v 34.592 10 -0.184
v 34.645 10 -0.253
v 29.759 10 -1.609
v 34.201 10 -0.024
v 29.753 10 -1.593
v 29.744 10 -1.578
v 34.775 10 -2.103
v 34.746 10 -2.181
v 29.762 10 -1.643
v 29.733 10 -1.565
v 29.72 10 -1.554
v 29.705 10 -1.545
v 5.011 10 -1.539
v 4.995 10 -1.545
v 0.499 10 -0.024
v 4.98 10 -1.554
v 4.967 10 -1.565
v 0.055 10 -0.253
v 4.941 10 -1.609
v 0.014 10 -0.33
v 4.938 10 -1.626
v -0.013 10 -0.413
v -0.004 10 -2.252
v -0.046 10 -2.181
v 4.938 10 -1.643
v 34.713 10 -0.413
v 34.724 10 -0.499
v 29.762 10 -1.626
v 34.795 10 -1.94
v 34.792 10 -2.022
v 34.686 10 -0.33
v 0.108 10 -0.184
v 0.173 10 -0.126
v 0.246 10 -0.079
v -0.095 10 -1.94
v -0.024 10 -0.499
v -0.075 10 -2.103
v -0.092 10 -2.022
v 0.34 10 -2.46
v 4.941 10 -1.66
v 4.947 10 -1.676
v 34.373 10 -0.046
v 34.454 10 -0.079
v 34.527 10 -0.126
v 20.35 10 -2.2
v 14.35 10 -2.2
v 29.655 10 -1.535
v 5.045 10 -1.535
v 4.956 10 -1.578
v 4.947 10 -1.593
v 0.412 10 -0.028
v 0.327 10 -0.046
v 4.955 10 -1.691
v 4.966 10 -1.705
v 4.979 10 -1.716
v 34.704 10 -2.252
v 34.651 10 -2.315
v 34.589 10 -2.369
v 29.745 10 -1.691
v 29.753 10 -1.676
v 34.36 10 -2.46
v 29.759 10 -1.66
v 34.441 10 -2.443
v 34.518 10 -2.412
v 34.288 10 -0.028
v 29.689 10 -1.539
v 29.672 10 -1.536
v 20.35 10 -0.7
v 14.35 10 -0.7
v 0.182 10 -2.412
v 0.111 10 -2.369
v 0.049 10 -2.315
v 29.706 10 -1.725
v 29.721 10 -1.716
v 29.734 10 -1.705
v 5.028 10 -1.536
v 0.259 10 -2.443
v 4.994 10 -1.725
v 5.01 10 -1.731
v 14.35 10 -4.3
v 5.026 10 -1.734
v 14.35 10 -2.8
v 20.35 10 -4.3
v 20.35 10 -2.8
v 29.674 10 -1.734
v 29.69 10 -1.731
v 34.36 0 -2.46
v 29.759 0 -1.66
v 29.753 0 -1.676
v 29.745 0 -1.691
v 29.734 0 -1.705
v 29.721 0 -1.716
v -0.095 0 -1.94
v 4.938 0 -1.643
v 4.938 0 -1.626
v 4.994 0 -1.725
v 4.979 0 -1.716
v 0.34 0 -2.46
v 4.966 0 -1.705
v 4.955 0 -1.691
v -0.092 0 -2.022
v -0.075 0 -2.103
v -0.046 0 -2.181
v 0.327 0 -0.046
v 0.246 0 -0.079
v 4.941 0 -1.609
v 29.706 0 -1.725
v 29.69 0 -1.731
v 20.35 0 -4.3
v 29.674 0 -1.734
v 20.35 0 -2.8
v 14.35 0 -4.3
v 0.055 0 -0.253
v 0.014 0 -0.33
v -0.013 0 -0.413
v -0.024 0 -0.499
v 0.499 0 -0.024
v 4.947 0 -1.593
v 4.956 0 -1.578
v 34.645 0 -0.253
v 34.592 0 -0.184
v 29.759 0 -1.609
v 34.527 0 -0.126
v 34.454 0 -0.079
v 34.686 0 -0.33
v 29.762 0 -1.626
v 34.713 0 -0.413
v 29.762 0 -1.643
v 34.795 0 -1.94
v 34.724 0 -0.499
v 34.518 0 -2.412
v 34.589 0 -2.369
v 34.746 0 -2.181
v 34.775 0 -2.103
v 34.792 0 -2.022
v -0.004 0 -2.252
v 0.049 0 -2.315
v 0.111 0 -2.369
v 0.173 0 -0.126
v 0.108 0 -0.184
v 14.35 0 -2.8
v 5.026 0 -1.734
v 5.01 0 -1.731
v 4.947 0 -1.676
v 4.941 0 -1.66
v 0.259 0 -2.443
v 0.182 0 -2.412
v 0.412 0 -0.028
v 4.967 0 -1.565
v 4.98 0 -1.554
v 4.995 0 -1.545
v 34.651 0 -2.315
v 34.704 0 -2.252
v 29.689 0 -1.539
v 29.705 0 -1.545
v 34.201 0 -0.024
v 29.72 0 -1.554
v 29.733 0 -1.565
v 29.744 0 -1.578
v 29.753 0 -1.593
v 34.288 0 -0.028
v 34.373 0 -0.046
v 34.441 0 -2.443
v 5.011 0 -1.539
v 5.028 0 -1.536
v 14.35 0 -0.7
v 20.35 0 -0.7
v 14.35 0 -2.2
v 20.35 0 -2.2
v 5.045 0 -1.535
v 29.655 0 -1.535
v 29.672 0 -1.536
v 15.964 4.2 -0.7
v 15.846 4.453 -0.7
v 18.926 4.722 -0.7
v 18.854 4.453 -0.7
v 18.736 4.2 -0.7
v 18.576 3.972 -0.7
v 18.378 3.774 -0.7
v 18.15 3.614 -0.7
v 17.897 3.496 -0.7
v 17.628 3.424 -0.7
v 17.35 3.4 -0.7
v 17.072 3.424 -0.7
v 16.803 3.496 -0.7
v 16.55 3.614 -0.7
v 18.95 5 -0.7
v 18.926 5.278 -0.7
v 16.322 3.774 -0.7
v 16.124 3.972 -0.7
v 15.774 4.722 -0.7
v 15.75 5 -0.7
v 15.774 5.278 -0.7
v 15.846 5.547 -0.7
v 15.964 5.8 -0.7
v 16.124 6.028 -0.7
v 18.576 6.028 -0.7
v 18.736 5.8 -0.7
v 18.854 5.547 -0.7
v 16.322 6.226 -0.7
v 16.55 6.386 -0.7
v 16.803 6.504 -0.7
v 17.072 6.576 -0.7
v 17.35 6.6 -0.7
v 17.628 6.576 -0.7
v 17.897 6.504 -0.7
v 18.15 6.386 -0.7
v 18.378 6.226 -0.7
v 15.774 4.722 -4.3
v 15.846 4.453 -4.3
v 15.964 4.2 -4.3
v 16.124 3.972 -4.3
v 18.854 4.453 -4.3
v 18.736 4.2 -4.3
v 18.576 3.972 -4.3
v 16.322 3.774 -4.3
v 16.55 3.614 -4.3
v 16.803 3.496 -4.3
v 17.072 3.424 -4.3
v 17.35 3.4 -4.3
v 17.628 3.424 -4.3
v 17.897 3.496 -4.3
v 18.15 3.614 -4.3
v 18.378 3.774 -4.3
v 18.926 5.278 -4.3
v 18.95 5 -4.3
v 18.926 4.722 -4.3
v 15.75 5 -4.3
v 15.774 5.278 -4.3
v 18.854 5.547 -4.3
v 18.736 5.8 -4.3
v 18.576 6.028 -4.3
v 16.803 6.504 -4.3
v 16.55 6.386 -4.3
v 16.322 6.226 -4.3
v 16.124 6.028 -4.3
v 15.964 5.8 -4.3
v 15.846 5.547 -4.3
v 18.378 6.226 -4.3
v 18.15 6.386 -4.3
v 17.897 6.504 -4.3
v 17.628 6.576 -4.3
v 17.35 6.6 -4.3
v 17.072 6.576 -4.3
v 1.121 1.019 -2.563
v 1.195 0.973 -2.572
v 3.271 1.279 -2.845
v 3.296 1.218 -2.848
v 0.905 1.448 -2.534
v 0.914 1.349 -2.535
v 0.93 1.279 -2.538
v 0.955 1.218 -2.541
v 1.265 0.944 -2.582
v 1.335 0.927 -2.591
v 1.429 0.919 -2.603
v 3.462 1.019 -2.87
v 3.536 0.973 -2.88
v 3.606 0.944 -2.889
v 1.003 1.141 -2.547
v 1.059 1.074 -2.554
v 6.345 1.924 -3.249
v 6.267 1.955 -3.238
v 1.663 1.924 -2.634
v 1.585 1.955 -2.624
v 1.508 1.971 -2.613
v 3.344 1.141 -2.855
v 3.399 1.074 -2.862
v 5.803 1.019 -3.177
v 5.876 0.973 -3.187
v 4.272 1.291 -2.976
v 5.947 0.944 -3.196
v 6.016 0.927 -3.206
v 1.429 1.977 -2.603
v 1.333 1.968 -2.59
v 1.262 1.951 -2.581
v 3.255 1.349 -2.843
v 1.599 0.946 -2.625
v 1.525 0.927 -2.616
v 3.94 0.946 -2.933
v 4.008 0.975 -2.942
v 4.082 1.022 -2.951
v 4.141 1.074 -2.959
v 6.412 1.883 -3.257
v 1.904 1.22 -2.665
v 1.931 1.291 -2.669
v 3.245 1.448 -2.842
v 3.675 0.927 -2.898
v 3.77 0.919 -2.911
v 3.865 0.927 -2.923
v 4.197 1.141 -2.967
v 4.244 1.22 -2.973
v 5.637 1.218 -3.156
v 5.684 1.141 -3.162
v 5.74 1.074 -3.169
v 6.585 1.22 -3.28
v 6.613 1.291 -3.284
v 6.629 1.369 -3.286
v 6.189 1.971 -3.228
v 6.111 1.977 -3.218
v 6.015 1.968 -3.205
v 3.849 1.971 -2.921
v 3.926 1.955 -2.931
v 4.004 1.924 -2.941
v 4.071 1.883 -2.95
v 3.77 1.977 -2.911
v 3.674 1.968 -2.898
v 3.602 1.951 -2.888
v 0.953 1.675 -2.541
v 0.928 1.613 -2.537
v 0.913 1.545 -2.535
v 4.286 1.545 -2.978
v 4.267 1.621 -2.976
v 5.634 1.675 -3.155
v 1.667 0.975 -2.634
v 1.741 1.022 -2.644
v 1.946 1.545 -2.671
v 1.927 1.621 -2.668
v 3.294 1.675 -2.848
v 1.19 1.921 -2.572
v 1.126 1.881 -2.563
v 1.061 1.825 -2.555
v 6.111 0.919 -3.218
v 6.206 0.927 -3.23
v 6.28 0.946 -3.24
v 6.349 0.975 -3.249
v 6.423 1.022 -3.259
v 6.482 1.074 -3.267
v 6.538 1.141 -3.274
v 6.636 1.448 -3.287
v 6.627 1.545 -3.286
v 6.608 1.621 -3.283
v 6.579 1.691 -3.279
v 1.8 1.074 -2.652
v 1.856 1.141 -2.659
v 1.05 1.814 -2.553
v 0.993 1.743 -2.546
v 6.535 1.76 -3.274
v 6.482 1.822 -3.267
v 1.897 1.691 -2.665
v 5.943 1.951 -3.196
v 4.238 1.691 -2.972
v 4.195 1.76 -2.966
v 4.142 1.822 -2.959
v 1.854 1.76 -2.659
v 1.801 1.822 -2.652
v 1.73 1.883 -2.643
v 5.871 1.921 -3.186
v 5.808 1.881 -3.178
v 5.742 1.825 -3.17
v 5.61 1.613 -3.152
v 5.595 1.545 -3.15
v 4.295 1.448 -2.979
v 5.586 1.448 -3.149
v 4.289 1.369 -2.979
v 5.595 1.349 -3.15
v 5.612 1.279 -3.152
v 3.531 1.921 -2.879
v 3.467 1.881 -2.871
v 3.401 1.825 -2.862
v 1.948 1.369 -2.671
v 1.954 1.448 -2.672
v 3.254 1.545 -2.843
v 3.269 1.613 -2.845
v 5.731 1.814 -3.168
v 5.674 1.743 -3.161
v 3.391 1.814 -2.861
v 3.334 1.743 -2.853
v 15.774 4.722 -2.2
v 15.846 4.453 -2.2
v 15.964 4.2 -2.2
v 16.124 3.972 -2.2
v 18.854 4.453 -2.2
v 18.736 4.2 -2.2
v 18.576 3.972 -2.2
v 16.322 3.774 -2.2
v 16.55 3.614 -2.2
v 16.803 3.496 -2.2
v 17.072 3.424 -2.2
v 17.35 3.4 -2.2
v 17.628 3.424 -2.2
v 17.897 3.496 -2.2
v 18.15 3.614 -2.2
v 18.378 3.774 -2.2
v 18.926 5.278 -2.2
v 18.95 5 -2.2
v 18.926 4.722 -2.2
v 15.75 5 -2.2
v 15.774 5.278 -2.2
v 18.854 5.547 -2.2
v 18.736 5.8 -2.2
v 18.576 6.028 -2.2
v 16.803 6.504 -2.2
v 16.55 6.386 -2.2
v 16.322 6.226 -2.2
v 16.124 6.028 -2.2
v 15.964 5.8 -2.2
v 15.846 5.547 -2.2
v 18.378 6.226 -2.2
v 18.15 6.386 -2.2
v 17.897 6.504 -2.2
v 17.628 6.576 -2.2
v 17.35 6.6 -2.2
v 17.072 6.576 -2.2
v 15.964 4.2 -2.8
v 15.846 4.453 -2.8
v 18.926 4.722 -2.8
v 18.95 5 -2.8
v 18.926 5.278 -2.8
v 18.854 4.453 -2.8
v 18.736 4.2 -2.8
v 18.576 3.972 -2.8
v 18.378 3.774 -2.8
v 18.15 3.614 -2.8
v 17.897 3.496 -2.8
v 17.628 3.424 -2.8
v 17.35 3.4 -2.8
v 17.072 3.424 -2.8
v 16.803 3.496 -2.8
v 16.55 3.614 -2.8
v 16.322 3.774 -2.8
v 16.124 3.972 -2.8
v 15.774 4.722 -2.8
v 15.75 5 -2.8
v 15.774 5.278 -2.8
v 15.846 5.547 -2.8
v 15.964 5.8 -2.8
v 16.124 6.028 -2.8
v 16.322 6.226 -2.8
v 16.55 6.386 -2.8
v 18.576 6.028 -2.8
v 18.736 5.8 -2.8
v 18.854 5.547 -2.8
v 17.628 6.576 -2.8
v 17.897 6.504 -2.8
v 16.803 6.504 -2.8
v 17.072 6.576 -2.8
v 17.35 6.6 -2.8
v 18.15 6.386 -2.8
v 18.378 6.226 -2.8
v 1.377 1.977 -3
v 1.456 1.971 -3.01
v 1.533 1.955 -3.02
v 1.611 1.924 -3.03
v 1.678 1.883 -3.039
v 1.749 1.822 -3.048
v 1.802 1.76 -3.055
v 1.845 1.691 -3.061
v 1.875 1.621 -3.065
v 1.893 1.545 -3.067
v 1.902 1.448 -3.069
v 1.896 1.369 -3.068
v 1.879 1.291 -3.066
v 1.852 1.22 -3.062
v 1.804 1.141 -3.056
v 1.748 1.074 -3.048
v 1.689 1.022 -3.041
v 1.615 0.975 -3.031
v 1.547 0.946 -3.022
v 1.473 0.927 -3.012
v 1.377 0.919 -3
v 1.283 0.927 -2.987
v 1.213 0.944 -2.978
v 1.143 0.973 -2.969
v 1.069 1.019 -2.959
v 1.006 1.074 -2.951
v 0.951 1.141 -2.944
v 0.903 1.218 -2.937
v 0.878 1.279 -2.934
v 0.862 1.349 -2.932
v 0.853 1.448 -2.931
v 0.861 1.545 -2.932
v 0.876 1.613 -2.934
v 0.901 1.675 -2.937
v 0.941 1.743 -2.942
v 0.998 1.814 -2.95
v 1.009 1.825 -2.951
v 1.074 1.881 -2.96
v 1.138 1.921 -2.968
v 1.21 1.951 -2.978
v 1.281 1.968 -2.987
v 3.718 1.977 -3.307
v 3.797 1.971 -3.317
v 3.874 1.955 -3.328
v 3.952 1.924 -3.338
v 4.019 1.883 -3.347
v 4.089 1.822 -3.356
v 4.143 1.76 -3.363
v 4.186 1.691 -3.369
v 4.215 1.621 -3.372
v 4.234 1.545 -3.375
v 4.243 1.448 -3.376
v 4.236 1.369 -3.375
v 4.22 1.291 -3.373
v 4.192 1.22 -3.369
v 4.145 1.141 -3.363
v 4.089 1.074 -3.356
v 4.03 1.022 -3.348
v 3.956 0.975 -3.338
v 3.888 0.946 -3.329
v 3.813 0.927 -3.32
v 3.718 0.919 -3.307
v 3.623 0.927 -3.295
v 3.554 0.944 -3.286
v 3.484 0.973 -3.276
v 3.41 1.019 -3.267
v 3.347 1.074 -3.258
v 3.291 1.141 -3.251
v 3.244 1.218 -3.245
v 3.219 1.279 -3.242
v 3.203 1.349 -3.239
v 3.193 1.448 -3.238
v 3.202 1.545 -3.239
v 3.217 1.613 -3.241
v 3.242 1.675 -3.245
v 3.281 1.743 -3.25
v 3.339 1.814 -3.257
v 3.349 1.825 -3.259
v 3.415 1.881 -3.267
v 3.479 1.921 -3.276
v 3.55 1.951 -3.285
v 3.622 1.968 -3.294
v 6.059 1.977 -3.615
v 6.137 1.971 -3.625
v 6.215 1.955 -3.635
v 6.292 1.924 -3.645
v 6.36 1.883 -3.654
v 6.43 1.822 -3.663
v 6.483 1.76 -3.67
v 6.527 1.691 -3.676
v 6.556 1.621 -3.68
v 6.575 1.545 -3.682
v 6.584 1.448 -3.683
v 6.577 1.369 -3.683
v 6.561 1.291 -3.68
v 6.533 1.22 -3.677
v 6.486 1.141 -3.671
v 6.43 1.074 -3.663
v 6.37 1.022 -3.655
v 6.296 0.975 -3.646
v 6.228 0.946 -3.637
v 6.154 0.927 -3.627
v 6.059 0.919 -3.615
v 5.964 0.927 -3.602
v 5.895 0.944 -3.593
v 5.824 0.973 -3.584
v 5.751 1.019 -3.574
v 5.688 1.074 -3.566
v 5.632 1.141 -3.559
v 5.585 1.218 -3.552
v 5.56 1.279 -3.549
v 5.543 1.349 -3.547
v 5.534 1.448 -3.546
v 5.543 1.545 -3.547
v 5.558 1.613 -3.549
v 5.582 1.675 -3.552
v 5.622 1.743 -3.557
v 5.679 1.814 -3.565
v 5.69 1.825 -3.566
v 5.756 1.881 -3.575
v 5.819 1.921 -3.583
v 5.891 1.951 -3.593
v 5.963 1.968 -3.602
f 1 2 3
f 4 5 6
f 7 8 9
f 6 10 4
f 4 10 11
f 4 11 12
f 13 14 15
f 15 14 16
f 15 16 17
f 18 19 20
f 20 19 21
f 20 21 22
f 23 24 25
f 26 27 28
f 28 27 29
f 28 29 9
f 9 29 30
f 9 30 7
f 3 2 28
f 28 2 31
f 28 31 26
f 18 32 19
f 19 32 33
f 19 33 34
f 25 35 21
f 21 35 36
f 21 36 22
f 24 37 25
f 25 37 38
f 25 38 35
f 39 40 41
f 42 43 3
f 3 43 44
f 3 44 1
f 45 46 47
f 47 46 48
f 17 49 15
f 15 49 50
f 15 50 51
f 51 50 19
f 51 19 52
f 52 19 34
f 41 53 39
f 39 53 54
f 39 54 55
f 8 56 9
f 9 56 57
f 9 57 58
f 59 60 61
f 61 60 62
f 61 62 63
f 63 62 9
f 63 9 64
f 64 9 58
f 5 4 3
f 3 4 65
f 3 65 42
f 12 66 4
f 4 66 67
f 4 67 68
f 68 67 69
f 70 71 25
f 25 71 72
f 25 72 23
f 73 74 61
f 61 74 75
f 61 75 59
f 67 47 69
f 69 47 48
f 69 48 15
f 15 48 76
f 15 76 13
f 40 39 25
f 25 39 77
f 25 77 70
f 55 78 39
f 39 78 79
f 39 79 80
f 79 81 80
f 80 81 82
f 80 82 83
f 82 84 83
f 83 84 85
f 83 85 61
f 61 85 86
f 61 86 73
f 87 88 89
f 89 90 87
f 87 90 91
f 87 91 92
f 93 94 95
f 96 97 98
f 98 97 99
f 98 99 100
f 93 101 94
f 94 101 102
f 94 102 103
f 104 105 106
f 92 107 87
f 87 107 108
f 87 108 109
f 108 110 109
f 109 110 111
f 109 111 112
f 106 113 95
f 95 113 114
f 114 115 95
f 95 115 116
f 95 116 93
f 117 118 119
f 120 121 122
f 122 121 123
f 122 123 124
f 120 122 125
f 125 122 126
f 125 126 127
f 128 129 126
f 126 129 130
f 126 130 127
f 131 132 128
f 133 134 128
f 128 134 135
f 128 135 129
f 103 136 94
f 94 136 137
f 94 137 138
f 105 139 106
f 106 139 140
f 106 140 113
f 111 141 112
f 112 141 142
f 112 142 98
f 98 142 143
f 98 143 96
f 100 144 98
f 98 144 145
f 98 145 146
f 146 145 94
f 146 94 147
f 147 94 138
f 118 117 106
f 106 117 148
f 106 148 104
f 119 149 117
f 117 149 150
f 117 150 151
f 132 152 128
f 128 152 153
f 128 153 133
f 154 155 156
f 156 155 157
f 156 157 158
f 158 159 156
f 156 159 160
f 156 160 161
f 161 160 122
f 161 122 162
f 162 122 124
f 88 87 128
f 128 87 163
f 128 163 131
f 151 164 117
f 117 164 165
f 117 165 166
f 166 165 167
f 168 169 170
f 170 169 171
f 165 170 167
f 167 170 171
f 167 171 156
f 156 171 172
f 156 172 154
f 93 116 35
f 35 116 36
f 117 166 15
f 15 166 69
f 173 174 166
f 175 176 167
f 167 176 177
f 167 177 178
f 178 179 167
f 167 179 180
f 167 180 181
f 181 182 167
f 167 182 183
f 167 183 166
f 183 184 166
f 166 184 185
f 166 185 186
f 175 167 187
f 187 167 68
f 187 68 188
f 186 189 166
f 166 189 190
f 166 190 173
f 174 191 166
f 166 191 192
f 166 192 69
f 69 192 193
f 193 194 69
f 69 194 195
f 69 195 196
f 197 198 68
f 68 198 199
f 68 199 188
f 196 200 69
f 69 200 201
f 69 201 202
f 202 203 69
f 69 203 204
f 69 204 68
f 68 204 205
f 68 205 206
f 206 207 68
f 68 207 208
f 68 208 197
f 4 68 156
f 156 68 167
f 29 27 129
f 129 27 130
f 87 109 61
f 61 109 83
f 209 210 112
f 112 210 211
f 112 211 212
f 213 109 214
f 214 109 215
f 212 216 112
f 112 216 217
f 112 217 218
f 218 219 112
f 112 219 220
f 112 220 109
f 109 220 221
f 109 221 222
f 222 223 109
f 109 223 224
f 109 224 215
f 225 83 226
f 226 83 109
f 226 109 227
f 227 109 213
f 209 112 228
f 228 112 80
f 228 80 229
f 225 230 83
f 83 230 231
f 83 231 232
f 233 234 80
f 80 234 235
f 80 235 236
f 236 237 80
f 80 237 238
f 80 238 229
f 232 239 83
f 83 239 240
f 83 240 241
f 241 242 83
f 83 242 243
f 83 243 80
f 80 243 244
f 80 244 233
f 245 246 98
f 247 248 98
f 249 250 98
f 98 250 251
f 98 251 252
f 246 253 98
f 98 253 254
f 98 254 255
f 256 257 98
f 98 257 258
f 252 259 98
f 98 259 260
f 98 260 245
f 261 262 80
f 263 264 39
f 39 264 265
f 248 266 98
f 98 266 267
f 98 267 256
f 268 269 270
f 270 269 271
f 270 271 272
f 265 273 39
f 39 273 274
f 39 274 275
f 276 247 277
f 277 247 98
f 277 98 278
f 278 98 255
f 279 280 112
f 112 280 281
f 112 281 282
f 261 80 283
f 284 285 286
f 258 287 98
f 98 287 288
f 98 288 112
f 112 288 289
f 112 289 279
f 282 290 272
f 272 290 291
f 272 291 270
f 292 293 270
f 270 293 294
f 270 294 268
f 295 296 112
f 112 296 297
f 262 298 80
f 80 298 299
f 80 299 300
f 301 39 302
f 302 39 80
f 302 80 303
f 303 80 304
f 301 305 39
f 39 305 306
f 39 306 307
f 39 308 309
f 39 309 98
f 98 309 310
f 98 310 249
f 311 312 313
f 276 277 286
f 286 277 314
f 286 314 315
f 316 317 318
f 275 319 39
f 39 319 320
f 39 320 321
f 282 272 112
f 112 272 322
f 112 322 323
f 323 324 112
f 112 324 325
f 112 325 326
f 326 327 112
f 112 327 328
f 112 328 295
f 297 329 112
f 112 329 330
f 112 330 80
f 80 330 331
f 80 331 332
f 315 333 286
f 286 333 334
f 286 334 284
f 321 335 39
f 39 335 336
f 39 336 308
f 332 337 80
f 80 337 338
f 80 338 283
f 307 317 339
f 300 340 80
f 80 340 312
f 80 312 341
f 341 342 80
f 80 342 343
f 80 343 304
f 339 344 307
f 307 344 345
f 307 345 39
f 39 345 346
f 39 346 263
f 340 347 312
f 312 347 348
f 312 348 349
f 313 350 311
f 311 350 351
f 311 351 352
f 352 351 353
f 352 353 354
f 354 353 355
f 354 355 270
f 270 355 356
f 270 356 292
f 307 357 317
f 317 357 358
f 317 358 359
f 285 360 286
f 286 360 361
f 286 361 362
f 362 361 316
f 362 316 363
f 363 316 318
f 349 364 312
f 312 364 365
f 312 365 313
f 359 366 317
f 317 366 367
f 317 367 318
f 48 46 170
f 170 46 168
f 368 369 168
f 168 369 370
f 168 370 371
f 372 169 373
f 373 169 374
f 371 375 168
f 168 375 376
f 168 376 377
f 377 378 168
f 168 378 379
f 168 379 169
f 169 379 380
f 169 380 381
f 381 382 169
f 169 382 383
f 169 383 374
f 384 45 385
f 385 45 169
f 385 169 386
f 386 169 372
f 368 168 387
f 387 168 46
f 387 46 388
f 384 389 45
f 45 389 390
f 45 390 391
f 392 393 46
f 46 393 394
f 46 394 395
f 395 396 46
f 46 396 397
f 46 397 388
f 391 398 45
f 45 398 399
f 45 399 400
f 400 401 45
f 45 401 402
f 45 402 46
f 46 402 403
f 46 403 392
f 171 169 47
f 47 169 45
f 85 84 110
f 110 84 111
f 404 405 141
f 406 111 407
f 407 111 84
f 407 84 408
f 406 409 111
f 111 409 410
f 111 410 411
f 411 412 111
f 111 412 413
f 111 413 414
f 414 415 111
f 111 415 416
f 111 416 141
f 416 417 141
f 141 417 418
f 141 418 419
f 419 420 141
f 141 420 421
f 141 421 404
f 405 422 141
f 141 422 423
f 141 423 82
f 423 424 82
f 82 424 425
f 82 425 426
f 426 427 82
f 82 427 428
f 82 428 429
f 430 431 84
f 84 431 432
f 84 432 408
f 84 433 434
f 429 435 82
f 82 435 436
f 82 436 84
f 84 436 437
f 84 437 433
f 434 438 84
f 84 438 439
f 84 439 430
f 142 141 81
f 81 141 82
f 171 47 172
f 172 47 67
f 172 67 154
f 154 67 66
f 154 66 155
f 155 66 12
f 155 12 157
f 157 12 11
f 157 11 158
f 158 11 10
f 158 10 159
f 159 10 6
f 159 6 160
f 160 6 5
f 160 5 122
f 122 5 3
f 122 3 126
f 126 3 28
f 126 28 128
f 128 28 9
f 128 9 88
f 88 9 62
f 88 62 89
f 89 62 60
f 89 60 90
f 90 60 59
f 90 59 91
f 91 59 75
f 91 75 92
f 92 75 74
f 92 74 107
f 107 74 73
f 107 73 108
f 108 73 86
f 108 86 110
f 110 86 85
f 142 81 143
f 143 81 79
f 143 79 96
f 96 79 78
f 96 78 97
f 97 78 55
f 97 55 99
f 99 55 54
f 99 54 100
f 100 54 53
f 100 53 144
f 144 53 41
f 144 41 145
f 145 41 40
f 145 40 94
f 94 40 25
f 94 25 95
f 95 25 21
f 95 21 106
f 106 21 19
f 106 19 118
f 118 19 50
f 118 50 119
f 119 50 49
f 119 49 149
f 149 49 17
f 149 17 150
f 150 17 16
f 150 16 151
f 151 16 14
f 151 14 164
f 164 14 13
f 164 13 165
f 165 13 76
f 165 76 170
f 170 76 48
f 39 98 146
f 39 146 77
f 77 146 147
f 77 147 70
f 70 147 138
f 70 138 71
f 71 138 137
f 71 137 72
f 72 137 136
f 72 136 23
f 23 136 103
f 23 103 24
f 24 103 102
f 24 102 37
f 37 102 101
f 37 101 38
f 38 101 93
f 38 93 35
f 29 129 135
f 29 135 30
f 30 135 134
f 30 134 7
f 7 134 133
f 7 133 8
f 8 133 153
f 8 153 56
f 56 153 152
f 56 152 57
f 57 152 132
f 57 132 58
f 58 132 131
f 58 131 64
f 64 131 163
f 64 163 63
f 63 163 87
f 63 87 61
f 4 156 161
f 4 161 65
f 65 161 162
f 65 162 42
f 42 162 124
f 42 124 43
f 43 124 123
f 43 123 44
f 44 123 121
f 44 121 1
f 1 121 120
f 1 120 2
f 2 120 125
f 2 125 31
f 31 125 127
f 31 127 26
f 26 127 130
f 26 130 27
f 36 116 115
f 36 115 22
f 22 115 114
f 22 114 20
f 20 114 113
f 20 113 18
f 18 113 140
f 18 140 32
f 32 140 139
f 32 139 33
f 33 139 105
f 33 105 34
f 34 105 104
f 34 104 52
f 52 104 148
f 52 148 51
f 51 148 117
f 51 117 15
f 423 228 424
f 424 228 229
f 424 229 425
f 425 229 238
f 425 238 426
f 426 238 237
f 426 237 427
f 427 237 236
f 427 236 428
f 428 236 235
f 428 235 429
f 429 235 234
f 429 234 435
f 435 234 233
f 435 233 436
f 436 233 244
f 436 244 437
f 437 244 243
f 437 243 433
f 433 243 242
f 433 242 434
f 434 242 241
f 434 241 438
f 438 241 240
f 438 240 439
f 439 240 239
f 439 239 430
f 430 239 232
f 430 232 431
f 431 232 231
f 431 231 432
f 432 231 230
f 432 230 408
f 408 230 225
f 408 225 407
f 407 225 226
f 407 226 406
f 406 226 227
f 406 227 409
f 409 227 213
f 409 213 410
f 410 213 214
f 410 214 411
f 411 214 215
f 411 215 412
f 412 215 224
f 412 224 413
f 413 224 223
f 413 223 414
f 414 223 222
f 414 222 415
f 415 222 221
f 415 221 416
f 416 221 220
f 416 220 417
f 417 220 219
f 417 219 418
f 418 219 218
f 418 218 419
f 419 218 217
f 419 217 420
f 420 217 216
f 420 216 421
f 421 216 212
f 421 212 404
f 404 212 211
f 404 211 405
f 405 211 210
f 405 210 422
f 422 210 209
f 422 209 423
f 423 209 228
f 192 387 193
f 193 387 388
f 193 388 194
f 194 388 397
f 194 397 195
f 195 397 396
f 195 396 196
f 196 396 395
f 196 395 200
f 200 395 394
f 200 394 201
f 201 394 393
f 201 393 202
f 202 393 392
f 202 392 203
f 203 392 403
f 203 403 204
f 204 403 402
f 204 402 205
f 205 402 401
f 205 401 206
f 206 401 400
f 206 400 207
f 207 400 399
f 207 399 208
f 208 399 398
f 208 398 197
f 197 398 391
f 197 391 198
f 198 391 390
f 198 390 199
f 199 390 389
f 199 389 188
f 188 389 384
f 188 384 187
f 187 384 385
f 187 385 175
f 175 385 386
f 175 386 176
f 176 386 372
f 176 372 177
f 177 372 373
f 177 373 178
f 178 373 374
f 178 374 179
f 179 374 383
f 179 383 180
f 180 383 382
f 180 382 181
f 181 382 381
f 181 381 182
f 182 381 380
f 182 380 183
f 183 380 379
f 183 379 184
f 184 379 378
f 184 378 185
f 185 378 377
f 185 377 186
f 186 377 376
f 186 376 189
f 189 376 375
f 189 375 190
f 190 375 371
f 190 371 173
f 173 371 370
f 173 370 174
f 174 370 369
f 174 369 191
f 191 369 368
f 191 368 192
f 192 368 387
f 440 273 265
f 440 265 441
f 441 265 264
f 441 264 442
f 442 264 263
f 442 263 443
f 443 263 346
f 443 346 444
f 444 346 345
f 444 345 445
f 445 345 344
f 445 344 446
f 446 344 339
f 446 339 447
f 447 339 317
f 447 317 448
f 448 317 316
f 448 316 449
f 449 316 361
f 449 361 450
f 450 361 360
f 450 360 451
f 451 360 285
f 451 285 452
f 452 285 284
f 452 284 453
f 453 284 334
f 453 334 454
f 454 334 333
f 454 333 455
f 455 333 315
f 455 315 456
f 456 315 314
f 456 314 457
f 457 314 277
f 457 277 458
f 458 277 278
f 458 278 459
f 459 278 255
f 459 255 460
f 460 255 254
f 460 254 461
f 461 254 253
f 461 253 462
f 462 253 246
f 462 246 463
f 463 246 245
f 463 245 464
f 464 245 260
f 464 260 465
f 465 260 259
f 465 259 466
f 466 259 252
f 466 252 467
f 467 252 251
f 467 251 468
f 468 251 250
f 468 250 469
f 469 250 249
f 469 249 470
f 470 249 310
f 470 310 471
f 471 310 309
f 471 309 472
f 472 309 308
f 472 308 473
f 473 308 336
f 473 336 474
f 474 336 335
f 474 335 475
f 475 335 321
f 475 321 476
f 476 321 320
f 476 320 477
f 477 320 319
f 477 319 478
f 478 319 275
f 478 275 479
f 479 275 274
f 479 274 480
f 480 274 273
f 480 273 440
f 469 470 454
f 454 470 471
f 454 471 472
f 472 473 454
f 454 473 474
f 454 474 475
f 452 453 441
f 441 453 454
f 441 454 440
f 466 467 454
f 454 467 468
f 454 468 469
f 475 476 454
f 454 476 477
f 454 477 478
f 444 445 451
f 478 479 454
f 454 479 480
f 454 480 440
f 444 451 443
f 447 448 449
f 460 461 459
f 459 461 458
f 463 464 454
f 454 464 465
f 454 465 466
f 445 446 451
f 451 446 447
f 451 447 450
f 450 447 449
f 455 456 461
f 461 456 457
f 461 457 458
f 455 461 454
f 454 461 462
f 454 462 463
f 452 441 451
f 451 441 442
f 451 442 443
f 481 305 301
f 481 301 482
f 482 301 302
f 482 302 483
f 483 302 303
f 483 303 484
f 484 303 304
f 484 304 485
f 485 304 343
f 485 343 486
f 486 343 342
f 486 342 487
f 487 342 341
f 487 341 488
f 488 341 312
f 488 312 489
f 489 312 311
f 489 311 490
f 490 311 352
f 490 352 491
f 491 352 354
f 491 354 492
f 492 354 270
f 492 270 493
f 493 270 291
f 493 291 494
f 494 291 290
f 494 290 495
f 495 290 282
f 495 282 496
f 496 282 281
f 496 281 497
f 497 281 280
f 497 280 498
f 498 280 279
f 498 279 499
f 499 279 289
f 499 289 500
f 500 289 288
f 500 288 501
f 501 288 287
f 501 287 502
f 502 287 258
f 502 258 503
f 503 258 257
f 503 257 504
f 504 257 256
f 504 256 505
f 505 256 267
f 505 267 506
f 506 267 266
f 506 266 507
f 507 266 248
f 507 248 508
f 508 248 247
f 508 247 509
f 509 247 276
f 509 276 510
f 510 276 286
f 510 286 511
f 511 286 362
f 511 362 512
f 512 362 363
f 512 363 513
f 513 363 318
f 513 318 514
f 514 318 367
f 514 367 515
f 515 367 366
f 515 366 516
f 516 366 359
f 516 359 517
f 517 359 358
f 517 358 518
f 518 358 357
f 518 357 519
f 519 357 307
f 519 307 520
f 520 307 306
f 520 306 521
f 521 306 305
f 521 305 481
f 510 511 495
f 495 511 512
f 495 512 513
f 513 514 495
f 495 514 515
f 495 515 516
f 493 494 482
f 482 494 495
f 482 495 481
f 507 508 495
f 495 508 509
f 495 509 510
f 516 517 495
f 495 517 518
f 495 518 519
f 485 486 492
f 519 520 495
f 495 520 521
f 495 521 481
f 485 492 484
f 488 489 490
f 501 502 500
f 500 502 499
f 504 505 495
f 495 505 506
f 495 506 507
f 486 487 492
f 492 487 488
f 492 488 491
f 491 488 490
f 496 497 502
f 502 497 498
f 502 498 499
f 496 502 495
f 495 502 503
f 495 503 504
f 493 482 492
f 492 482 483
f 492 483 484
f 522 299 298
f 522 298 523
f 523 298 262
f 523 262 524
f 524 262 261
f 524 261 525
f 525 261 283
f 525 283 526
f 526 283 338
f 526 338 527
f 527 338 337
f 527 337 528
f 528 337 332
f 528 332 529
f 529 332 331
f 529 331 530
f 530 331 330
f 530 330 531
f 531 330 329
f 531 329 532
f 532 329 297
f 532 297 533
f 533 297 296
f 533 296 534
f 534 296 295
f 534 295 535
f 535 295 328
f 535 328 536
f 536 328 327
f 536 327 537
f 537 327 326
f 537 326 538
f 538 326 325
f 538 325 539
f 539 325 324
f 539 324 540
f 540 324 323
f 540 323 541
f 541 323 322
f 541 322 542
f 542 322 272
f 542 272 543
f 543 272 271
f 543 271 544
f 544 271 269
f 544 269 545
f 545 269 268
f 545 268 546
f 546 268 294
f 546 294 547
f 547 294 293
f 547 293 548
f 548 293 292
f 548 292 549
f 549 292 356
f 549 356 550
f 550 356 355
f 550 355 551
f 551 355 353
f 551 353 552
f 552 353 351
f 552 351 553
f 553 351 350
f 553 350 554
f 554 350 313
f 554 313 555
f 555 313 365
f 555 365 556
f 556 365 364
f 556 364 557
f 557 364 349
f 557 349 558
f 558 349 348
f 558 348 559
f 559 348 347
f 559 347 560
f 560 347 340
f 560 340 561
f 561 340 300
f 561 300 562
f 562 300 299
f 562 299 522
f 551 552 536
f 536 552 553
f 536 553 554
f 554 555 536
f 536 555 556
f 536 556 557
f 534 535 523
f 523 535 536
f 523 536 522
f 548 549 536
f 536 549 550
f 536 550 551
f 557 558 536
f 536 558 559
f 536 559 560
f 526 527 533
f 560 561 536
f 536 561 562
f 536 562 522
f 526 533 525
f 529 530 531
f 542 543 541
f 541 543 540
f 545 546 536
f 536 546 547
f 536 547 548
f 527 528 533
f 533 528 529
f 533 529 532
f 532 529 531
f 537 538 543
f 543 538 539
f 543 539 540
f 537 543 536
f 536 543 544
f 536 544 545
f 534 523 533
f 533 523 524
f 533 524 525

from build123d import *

# Parameters (mm, degrees)
BOSS_EXTRUDE1_DEPTH       = 10
FILLET1_R                 = 0.1
FILLET2_R                 = 0.5
SKETCH2_R                 = 1.6
CUT_EXTRUDE1_DEPTH        = 37.455365189
REVISION_INDICATION_DEPTH = 0.4


with BuildPart() as part:
    # Sketch1 → Boss-Extrude1 (new body)
    with BuildSketch(Plane(origin=(0, 0, 0), x_dir=(1, 0, 0), z_dir=(0, 1, 0))):
        Polygon((20.35, 0.7), (14.35, 0.7), (0, 0), (-0.117073171, 2.4), (14.35, 4.3), (20.35, 4.3), (34.817073171, 2.4), (34.7, 0), align=None)
        Polygon((20.35, 2.2), (14.35, 2.2), (0.35, 1.2), (14.35, 2.8), (20.35, 2.8), (34.35, 1.2), align=None, mode=Mode.SUBTRACT)
    extrude(amount=BOSS_EXTRUDE1_DEPTH)

    # Fillet1
    fillet1_edges = [part.edges().sort_by_distance(p)[0] for p in [
        (0.35, 5, -1.2),
        (34.35, 5, -1.2),
    ]]
    fillet(fillet1_edges, radius=FILLET1_R)

    # Fillet2
    fillet2_edges = [part.edges().sort_by_distance(p)[0] for p in [
        (-0.117073171, 5, -2.4),
        (34.817073171, 5, -2.4),
        (34.7, 5, 0),
        (0, 5, 0),
    ]]
    fillet(fillet2_edges, radius=FILLET2_R)

    # Sketch2 → Cut-Extrude1 (cut, through all)
    with BuildSketch(Plane(origin=(0, 0, -4.3), x_dir=(-1, 0, 0), z_dir=(0, 0, -1))):
        with Locations((-17.35, 5)):
            Circle(SKETCH2_R)
    extrude(amount=-CUT_EXTRUDE1_DEPTH, mode=Mode.SUBTRACT)

    # Sketch5 → revision indication (add)
    with BuildSketch(Plane(origin=(-0.311839138, 0, -2.374420857), x_dir=(-0.9914858429395939, 0, 0.13021452780071538), z_dir=(-0.13021452780071538, 0, -0.9914858429395939))):
        with BuildLine():
            add(Edge.make_bspline(
                [(-1.75614285, 1.976923077), (-1.720782037, 1.974821832), (-1.651461296, 1.970702586), (-1.551241734, 1.942442049), (-1.460537137, 1.892261337), (-1.379742922, 1.825381725), (-1.313146886, 1.744291021), (-1.261177847, 1.654309873), (-1.233163488, 1.553251269), (-1.229074248, 1.483528859), (-1.226976184, 1.44775641)],
                knots=[0, 0, 0, 0, 1.020151414, 1.999887582, 2.974338812, 3.990962822, 5.007586832, 5.987933904, 6.967670073, 8, 8, 8, 8], degree=3))
            add(Edge.make_bspline(
                [(-1.226976184, 1.44775641), (-1.229145345, 1.412843512), (-1.233422899, 1.343995789), (-1.261113631, 1.243699421), (-1.313542951, 1.153662038), (-1.379283581, 1.071471016), (-1.46055711, 1.004449722), (-1.551456175, 0.954695939), (-1.651226029, 0.924411918), (-1.720742787, 0.920554208), (-1.75614285, 0.918589744)],
                knots=[0, 0, 0, 0, 1.009421747, 1.99056486, 2.972319754, 3.999869655, 5.017953583, 5.993804169, 6.978383603, 8, 8, 8, 8], degree=3))
            add(Edge.make_bspline(
                [(-1.75614285, 0.918589744), (-1.791568422, 0.920483127), (-1.860728417, 0.924179507), (-1.960125864, 0.955317742), (-2.051578507, 1.003983162), (-2.132836213, 1.071595984), (-2.19912744, 1.153239101), (-2.249247777, 1.244319503), (-2.279347047, 1.343708683), (-2.283305588, 1.412786963), (-2.285309517, 1.44775641)],
                knots=[0, 0, 0, 0, 1.022052826, 1.995314843, 2.982371812, 4.00089066, 5.028879526, 6.005146991, 6.990147033, 8, 8, 8, 8], degree=3))
            add(Edge.make_bspline(
                [(-2.285309517, 1.44775641), (-2.283382565, 1.483587428), (-2.279620429, 1.553543092), (-2.249184588, 1.653690044), (-2.199516318, 1.744709926), (-2.132377959, 1.825258007), (-2.051598165, 1.892726399), (-1.960346478, 1.941829667), (-1.860489026, 1.970931558), (-1.791528138, 1.974891267), (-1.75614285, 1.976923077)],
                knots=[0, 0, 0, 0, 1.032775665, 2.016367738, 2.991239715, 4.008302682, 5.025365648, 6.011011707, 6.979408107, 8, 8, 8, 8], degree=3))
        make_face()
        with BuildLine():
            add(Edge.make_bspline(
                [(-4.117040286, 1.976923077), (-4.081679473, 1.974821832), (-4.012358732, 1.970702586), (-3.91213917, 1.942442049), (-3.821434573, 1.892261337), (-3.740640358, 1.825381725), (-3.674044322, 1.744291021), (-3.622075283, 1.654309873), (-3.594060924, 1.553251269), (-3.589971684, 1.483528859), (-3.587873619, 1.44775641)],
                knots=[0, 0, 0, 0, 1.020151414, 1.999887582, 2.974338812, 3.990962822, 5.007586832, 5.987933904, 6.967670073, 8, 8, 8, 8], degree=3))
            add(Edge.make_bspline(
                [(-3.587873619, 1.44775641), (-3.590042781, 1.412843512), (-3.594320335, 1.343995789), (-3.622011067, 1.243699421), (-3.674440387, 1.153662038), (-3.740181017, 1.071471016), (-3.821454546, 1.004449722), (-3.91235361, 0.954695939), (-4.012123464, 0.924411918), (-4.081640223, 0.920554208), (-4.117040286, 0.918589744)],
                knots=[0, 0, 0, 0, 1.009421747, 1.99056486, 2.972319754, 3.999869655, 5.017953583, 5.993804169, 6.978383603, 8, 8, 8, 8], degree=3))
            add(Edge.make_bspline(
                [(-4.117040286, 0.918589744), (-4.152465858, 0.920483127), (-4.221625853, 0.924179507), (-4.3210233, 0.955317742), (-4.412475943, 1.003983162), (-4.493733649, 1.071595984), (-4.560024876, 1.153239101), (-4.610145213, 1.244319503), (-4.640244483, 1.343708683), (-4.644203024, 1.412786963), (-4.646206953, 1.44775641)],
                knots=[0, 0, 0, 0, 1.022052826, 1.995314843, 2.982371812, 4.00089066, 5.028879526, 6.005146991, 6.990147033, 8, 8, 8, 8], degree=3))
            add(Edge.make_bspline(
                [(-4.646206953, 1.44775641), (-4.644280001, 1.483587428), (-4.640517865, 1.553543092), (-4.610082024, 1.653690044), (-4.560413754, 1.744709926), (-4.493275395, 1.825258007), (-4.412495601, 1.892726399), (-4.321243914, 1.941829667), (-4.221386462, 1.970931558), (-4.152425574, 1.974891267), (-4.117040286, 1.976923077)],
                knots=[0, 0, 0, 0, 1.032775665, 2.016367738, 2.991239715, 4.008302682, 5.025365648, 6.011011707, 6.979408107, 8, 8, 8, 8], degree=3))
        make_face()
        with BuildLine():
            add(Edge.make_bspline(
                [(-6.477937722, 1.976923077), (-6.442576908, 1.974821832), (-6.373256168, 1.970702586), (-6.273036606, 1.942442049), (-6.182332009, 1.892261337), (-6.101537794, 1.825381725), (-6.034941758, 1.744291021), (-5.982972719, 1.654309873), (-5.95495836, 1.553251269), (-5.95086912, 1.483528859), (-5.948771055, 1.44775641)],
                knots=[0, 0, 0, 0, 1.020151414, 1.999887582, 2.974338812, 3.990962822, 5.007586832, 5.987933904, 6.967670073, 8, 8, 8, 8], degree=3))
            add(Edge.make_bspline(
                [(-5.948771055, 1.44775641), (-5.950940217, 1.412843512), (-5.955217771, 1.343995789), (-5.982908503, 1.243699421), (-6.035337823, 1.153662038), (-6.101078453, 1.071471016), (-6.182351982, 1.004449722), (-6.273251046, 0.954695939), (-6.3730209, 0.924411918), (-6.442537658, 0.920554208), (-6.477937722, 0.918589744)],
                knots=[0, 0, 0, 0, 1.009421747, 1.99056486, 2.972319754, 3.999869655, 5.017953583, 5.993804169, 6.978383603, 8, 8, 8, 8], degree=3))
            add(Edge.make_bspline(
                [(-6.477937722, 0.918589744), (-6.513363294, 0.920483127), (-6.582523289, 0.924179507), (-6.681920736, 0.955317742), (-6.773373379, 1.003983162), (-6.854631085, 1.071595984), (-6.920922312, 1.153239101), (-6.971042649, 1.244319503), (-7.001141919, 1.343708683), (-7.00510046, 1.412786963), (-7.007104389, 1.44775641)],
                knots=[0, 0, 0, 0, 1.022052826, 1.995314843, 2.982371812, 4.00089066, 5.028879526, 6.005146991, 6.990147033, 8, 8, 8, 8], degree=3))
            add(Edge.make_bspline(
                [(-7.007104389, 1.44775641), (-7.005177437, 1.483587428), (-7.001415301, 1.553543092), (-6.97097946, 1.653690044), (-6.92131119, 1.744709926), (-6.85417283, 1.825258007), (-6.773393036, 1.892726399), (-6.68214135, 1.941829667), (-6.582283898, 1.970931558), (-6.51332301, 1.974891267), (-6.477937722, 1.976923077)],
                knots=[0, 0, 0, 0, 1.032775665, 2.016367738, 2.991239715, 4.008302682, 5.025365648, 6.011011707, 6.979408107, 8, 8, 8, 8], degree=3))
        make_face()
    extrude(amount=REVISION_INDICATION_DEPTH)


solid = part.part
